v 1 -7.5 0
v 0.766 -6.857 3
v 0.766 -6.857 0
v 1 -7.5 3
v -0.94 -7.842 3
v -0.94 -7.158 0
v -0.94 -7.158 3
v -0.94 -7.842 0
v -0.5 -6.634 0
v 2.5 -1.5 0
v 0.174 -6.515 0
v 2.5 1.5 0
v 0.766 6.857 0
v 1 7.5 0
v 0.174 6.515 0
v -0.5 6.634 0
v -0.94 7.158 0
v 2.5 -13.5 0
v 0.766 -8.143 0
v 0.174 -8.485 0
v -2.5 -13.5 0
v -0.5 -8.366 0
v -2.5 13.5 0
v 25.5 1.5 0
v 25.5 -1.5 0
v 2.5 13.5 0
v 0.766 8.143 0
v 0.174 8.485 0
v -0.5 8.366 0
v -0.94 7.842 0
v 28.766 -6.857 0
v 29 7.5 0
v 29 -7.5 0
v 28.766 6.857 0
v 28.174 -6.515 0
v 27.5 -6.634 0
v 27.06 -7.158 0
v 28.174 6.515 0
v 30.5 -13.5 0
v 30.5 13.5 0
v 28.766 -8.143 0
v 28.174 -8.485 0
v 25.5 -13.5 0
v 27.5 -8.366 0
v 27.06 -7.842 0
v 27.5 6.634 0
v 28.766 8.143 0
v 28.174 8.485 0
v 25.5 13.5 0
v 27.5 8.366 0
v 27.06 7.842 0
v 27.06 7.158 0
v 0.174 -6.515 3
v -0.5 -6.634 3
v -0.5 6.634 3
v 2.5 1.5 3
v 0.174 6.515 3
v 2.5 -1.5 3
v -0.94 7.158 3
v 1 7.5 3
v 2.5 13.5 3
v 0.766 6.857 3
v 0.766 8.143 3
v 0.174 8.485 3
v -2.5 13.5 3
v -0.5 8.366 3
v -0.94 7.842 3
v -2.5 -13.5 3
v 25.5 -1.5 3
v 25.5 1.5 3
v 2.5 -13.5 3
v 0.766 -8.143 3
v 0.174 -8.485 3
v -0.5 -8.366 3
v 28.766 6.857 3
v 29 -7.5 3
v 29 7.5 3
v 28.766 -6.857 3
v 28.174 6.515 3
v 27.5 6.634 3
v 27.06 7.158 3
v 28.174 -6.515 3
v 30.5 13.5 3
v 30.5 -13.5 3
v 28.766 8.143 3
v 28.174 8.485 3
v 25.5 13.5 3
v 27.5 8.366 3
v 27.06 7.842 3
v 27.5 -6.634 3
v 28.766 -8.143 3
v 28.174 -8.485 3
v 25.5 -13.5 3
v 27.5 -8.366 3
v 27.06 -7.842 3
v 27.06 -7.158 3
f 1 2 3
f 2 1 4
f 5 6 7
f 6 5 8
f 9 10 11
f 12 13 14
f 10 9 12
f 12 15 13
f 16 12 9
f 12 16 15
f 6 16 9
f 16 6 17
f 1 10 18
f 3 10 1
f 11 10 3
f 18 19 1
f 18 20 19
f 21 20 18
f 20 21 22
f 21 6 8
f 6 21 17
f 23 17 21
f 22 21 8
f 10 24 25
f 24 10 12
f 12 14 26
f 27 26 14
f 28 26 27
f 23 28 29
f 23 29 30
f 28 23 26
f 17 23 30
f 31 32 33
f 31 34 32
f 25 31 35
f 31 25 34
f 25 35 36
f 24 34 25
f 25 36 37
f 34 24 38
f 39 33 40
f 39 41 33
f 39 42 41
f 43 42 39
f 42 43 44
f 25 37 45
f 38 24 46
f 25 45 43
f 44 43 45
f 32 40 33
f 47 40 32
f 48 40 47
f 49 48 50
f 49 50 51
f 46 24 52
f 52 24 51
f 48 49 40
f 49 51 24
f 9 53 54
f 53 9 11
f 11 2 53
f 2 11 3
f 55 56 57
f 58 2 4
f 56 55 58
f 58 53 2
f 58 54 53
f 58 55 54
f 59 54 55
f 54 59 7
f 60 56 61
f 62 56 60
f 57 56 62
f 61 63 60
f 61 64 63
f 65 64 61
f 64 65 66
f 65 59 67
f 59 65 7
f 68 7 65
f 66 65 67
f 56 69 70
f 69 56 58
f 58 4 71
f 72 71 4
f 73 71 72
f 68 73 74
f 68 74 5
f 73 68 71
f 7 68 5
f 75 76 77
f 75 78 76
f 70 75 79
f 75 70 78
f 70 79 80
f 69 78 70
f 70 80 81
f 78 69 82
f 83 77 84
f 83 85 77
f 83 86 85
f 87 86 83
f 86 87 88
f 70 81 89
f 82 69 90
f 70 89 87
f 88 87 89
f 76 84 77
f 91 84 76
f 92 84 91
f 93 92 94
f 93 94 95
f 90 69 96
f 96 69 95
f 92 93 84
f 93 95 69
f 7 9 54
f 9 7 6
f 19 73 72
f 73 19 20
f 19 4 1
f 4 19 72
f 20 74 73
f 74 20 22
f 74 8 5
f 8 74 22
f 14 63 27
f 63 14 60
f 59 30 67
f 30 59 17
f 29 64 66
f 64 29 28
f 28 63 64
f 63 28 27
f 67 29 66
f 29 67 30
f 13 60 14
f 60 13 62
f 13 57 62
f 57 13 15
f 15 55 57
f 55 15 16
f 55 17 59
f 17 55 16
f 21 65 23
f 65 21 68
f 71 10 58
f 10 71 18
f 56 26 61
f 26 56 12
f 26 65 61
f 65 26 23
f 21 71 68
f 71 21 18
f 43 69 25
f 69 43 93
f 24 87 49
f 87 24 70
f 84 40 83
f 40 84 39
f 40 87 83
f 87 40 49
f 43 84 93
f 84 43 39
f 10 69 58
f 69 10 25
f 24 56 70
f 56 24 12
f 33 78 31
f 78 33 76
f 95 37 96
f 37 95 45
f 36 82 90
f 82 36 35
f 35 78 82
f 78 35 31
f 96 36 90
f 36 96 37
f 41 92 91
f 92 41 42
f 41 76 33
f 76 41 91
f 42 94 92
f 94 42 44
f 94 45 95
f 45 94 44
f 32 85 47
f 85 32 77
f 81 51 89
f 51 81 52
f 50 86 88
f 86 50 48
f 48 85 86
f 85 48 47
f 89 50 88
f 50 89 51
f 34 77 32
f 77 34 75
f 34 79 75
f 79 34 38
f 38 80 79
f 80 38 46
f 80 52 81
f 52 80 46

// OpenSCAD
$fs=.75;

difference(){
	union() {
		translate(v = [0, -13.5000000000, 0]) {
			union() {
				translate(v = [0, 13.5000000000, 1.5000000000]) {
					translate(v = [-2.5000000000, -13.5000000000, -1.5000000000]) {
						cube(size = [5, 27, 3]);
					}
				}
				translate(v = [0, 6.0000000000, 0]) {
				}
				translate(v = [0, 21.0000000000, 0]) {
				}
			}
		}
		translate(v = [28, 0, 0]) {
			translate(v = [0, -13.5000000000, 0]) {
				union() {
					translate(v = [0, 13.5000000000, 1.5000000000]) {
						translate(v = [-2.5000000000, -13.5000000000, -1.5000000000]) {
							cube(size = [5, 27, 3]);
						}
					}
					translate(v = [0, 6.0000000000, 0]) {
					}
					translate(v = [0, 21.0000000000, 0]) {
					}
				}
			}
		}
		translate(v = [13.5000000000, 0, 1.5000000000]) {
			translate(v = [-13.5000000000, -1.5000000000, -1.5000000000]) {
				cube(size = [27, 3, 3]);
			}
		}
	}
	/* Holes Below*/
	union(){
		translate(v = [0, -13.5000000000, 0]){
			union(){
				translate(v = [0, 6.0000000000, 0]){
					cylinder(d = 2, h = 3);
				}
				translate(v = [0, 21.0000000000, 0]){
					cylinder(d = 2, h = 3);
				}
			}
		}
		translate(v = [28, 0, 0]){
			translate(v = [0, -13.5000000000, 0]){
				union(){
					translate(v = [0, 6.0000000000, 0]){
						cylinder(d = 2, h = 3);
					}
					translate(v = [0, 21.0000000000, 0]){
						cylinder(d = 2, h = 3);
					}
				}
			}
		}
	} /* End Holes */ 
}
/***********************************************
*********      SolidPython code:      **********
************************************************
 
from solid import *
from solid import extensions
from math import *

class Object:
    pass

servo = Object()
servo.width = 12
servo.height = 23
servo.wingL = 5
servo.holeD = 2
thk= 3

servoSpace = 3
w = servo.width*2 + servoSpace

screwHole = cylinder(d=servo.holeD,h=thk).set_hole()

def bar(): 
	return ( cube([servo.wingL,w,thk]).align('y-','z-')
				  + screwHole.move(y=servo.width/2.)
				  + screwHole.move(y= w-servo.width/2.)
			).move(y=-w/2.)
bar2bar = cube([w,servoSpace,thk]).align('x-','z-')

scene = bar() + bar().move(x=servo.height+servo.wingL)+bar2bar

scad_render_to_file(scene, 'preview.scad', '$fs=.75;') 
 
************************************************/
